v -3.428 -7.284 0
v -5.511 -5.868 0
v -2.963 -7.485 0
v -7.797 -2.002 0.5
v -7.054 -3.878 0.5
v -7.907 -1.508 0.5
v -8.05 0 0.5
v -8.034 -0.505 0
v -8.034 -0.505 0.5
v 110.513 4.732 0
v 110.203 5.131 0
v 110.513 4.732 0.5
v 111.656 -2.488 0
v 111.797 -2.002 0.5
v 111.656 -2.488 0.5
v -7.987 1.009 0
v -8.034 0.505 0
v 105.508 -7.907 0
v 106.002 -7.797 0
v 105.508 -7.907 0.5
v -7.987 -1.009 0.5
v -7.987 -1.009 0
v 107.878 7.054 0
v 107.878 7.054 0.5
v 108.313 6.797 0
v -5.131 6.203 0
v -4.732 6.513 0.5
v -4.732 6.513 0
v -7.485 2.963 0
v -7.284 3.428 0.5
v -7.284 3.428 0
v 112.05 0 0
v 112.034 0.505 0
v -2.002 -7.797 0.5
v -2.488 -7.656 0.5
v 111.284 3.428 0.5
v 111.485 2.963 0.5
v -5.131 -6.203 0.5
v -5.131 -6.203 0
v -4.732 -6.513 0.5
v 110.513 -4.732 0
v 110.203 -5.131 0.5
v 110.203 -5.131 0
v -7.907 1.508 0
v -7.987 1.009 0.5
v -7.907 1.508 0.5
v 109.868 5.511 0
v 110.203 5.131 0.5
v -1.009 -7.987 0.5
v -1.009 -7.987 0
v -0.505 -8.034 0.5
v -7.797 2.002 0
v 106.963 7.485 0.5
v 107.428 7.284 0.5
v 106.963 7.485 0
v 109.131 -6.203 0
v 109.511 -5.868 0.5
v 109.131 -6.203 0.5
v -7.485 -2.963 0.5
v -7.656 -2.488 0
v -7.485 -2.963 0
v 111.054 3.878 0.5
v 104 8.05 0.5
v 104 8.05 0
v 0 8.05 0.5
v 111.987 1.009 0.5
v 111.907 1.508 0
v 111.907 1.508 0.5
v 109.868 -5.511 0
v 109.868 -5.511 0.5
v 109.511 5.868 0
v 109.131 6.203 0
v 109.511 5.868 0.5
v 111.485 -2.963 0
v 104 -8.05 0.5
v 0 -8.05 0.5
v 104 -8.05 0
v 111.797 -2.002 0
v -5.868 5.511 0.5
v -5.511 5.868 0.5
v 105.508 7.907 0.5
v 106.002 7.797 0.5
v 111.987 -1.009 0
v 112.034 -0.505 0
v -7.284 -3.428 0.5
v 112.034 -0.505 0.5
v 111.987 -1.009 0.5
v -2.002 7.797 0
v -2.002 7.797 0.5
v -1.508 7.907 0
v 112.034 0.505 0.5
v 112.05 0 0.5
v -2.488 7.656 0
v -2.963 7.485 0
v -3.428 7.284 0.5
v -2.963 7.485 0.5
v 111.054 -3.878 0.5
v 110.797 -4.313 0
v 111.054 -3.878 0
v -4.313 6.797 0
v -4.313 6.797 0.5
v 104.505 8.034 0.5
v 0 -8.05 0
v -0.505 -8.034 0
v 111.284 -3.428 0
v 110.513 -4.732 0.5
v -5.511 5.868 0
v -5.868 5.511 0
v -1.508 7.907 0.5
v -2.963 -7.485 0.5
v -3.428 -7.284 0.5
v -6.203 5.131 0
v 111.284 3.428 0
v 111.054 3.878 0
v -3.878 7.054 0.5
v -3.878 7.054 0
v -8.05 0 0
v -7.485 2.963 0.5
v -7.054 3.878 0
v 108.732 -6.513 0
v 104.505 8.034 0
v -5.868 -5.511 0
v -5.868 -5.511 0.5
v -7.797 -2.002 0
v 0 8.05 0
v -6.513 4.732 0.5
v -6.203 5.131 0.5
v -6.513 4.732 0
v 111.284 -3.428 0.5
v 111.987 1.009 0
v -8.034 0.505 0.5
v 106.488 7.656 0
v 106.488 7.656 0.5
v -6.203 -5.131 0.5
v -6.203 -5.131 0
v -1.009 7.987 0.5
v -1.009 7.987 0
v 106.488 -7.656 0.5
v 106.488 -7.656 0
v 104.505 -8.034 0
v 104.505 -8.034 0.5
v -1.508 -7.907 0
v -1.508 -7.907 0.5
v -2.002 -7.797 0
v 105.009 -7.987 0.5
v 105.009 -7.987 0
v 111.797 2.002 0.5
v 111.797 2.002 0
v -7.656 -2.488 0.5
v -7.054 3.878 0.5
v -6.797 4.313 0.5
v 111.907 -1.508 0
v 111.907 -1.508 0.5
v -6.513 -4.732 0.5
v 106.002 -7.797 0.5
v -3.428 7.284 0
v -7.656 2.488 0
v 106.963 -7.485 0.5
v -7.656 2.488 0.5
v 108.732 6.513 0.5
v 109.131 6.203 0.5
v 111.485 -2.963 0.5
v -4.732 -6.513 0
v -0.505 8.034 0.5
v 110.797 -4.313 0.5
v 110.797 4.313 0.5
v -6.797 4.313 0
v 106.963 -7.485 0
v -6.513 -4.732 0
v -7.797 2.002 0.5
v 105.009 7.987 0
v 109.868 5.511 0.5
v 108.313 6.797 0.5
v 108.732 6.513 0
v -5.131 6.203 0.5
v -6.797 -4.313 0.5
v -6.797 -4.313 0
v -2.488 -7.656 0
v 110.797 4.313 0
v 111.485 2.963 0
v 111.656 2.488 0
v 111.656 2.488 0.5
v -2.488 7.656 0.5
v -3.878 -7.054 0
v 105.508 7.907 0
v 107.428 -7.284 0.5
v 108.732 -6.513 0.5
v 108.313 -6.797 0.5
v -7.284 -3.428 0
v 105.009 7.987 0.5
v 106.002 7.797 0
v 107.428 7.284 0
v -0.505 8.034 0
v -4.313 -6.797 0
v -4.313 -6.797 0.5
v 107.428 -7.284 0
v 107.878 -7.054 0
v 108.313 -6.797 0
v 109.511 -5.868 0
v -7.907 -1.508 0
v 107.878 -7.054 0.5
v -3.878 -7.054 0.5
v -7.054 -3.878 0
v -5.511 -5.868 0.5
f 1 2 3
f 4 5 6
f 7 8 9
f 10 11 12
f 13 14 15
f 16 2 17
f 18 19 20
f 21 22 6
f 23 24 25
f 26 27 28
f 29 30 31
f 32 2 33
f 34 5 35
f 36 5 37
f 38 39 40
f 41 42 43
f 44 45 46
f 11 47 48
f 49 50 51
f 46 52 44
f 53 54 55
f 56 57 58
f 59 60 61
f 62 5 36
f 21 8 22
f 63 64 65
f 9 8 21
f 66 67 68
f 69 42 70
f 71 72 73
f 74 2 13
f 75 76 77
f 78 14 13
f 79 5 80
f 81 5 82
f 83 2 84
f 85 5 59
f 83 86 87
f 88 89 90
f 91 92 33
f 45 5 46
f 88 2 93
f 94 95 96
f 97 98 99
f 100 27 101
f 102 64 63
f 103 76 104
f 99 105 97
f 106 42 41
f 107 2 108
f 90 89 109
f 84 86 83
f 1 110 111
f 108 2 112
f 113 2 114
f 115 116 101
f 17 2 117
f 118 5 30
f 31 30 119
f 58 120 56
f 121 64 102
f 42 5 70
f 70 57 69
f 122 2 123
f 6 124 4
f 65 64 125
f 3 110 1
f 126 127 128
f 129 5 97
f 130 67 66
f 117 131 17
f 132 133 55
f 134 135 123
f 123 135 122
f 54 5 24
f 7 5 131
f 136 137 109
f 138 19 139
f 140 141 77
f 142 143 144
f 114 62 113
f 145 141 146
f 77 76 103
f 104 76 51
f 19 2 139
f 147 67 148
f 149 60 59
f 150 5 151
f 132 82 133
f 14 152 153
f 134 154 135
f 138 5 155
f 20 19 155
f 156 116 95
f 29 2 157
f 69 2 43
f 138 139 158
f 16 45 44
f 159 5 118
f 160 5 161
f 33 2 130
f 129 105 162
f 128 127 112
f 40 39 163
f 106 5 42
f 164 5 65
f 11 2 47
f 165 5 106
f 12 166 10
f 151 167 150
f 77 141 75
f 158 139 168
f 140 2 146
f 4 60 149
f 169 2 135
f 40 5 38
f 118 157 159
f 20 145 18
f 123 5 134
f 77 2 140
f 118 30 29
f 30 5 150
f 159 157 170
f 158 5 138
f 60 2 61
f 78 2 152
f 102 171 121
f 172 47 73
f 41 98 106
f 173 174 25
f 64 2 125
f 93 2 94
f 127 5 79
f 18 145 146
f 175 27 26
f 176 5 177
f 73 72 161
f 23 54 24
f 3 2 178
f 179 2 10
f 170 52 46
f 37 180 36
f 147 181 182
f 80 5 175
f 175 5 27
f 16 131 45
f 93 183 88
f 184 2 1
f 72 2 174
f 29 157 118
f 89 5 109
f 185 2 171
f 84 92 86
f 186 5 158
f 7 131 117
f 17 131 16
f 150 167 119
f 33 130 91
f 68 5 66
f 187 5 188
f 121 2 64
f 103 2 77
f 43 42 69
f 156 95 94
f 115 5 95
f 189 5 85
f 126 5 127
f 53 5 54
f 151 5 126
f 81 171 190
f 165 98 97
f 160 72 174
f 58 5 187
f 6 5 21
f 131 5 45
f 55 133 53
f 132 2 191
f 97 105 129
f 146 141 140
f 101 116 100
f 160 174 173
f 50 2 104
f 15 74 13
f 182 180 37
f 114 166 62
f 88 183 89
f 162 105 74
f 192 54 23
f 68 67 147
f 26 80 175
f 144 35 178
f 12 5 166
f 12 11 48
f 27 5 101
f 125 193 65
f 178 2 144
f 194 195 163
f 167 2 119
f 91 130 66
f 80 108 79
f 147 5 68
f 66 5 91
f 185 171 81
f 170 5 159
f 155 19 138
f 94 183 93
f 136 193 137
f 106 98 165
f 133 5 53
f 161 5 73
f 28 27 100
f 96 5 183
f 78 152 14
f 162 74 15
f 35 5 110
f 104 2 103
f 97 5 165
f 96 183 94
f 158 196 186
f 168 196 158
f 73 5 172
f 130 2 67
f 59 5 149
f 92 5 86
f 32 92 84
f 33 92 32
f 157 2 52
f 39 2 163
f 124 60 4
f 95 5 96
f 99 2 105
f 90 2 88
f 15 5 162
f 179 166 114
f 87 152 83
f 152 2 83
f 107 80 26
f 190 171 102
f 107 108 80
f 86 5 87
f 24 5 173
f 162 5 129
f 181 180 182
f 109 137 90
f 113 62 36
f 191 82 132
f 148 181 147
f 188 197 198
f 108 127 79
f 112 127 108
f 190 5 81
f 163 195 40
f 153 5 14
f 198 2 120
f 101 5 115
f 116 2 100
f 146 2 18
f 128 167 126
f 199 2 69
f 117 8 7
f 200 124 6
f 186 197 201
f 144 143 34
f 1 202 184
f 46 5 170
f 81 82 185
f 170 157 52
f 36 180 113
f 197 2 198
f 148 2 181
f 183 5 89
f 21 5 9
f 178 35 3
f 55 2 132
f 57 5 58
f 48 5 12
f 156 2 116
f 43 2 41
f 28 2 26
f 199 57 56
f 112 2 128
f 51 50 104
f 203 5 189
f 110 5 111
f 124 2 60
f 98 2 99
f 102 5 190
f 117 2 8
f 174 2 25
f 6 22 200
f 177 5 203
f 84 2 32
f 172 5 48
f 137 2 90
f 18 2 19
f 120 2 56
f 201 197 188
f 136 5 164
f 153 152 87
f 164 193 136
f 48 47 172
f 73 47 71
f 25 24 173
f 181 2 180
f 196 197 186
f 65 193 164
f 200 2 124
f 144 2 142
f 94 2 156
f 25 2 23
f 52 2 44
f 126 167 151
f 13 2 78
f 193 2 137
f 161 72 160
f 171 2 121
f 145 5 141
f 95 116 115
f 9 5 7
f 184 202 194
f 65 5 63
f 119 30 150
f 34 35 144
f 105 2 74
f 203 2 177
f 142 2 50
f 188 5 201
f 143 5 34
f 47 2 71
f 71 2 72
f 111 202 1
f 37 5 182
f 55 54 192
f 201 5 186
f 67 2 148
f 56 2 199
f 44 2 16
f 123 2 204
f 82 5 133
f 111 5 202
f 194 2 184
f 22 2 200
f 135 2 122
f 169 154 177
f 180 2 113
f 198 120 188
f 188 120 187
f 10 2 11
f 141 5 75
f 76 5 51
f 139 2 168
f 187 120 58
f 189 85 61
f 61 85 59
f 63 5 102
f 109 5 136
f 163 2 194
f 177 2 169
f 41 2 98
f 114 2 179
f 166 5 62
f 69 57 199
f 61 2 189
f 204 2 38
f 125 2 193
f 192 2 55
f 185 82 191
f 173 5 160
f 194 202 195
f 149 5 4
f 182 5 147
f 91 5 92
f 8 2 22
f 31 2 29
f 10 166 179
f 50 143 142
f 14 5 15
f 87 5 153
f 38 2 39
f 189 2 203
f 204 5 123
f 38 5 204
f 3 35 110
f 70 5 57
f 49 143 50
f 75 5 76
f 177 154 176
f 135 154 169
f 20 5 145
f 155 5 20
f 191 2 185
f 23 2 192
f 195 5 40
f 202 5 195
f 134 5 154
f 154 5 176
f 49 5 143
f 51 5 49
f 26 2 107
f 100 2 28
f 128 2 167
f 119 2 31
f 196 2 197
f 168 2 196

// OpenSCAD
$fn=100;
holeEndD=16.1;
holeLength=120.1;
buttonHolderHeight=.5;

hull(){
    cylinder(h=buttonHolderHeight,d=holeEndD);
    translate([holeLength-holeEndD,0,0]) cylinder(h=buttonHolderHeight,d=holeEndD);
}
